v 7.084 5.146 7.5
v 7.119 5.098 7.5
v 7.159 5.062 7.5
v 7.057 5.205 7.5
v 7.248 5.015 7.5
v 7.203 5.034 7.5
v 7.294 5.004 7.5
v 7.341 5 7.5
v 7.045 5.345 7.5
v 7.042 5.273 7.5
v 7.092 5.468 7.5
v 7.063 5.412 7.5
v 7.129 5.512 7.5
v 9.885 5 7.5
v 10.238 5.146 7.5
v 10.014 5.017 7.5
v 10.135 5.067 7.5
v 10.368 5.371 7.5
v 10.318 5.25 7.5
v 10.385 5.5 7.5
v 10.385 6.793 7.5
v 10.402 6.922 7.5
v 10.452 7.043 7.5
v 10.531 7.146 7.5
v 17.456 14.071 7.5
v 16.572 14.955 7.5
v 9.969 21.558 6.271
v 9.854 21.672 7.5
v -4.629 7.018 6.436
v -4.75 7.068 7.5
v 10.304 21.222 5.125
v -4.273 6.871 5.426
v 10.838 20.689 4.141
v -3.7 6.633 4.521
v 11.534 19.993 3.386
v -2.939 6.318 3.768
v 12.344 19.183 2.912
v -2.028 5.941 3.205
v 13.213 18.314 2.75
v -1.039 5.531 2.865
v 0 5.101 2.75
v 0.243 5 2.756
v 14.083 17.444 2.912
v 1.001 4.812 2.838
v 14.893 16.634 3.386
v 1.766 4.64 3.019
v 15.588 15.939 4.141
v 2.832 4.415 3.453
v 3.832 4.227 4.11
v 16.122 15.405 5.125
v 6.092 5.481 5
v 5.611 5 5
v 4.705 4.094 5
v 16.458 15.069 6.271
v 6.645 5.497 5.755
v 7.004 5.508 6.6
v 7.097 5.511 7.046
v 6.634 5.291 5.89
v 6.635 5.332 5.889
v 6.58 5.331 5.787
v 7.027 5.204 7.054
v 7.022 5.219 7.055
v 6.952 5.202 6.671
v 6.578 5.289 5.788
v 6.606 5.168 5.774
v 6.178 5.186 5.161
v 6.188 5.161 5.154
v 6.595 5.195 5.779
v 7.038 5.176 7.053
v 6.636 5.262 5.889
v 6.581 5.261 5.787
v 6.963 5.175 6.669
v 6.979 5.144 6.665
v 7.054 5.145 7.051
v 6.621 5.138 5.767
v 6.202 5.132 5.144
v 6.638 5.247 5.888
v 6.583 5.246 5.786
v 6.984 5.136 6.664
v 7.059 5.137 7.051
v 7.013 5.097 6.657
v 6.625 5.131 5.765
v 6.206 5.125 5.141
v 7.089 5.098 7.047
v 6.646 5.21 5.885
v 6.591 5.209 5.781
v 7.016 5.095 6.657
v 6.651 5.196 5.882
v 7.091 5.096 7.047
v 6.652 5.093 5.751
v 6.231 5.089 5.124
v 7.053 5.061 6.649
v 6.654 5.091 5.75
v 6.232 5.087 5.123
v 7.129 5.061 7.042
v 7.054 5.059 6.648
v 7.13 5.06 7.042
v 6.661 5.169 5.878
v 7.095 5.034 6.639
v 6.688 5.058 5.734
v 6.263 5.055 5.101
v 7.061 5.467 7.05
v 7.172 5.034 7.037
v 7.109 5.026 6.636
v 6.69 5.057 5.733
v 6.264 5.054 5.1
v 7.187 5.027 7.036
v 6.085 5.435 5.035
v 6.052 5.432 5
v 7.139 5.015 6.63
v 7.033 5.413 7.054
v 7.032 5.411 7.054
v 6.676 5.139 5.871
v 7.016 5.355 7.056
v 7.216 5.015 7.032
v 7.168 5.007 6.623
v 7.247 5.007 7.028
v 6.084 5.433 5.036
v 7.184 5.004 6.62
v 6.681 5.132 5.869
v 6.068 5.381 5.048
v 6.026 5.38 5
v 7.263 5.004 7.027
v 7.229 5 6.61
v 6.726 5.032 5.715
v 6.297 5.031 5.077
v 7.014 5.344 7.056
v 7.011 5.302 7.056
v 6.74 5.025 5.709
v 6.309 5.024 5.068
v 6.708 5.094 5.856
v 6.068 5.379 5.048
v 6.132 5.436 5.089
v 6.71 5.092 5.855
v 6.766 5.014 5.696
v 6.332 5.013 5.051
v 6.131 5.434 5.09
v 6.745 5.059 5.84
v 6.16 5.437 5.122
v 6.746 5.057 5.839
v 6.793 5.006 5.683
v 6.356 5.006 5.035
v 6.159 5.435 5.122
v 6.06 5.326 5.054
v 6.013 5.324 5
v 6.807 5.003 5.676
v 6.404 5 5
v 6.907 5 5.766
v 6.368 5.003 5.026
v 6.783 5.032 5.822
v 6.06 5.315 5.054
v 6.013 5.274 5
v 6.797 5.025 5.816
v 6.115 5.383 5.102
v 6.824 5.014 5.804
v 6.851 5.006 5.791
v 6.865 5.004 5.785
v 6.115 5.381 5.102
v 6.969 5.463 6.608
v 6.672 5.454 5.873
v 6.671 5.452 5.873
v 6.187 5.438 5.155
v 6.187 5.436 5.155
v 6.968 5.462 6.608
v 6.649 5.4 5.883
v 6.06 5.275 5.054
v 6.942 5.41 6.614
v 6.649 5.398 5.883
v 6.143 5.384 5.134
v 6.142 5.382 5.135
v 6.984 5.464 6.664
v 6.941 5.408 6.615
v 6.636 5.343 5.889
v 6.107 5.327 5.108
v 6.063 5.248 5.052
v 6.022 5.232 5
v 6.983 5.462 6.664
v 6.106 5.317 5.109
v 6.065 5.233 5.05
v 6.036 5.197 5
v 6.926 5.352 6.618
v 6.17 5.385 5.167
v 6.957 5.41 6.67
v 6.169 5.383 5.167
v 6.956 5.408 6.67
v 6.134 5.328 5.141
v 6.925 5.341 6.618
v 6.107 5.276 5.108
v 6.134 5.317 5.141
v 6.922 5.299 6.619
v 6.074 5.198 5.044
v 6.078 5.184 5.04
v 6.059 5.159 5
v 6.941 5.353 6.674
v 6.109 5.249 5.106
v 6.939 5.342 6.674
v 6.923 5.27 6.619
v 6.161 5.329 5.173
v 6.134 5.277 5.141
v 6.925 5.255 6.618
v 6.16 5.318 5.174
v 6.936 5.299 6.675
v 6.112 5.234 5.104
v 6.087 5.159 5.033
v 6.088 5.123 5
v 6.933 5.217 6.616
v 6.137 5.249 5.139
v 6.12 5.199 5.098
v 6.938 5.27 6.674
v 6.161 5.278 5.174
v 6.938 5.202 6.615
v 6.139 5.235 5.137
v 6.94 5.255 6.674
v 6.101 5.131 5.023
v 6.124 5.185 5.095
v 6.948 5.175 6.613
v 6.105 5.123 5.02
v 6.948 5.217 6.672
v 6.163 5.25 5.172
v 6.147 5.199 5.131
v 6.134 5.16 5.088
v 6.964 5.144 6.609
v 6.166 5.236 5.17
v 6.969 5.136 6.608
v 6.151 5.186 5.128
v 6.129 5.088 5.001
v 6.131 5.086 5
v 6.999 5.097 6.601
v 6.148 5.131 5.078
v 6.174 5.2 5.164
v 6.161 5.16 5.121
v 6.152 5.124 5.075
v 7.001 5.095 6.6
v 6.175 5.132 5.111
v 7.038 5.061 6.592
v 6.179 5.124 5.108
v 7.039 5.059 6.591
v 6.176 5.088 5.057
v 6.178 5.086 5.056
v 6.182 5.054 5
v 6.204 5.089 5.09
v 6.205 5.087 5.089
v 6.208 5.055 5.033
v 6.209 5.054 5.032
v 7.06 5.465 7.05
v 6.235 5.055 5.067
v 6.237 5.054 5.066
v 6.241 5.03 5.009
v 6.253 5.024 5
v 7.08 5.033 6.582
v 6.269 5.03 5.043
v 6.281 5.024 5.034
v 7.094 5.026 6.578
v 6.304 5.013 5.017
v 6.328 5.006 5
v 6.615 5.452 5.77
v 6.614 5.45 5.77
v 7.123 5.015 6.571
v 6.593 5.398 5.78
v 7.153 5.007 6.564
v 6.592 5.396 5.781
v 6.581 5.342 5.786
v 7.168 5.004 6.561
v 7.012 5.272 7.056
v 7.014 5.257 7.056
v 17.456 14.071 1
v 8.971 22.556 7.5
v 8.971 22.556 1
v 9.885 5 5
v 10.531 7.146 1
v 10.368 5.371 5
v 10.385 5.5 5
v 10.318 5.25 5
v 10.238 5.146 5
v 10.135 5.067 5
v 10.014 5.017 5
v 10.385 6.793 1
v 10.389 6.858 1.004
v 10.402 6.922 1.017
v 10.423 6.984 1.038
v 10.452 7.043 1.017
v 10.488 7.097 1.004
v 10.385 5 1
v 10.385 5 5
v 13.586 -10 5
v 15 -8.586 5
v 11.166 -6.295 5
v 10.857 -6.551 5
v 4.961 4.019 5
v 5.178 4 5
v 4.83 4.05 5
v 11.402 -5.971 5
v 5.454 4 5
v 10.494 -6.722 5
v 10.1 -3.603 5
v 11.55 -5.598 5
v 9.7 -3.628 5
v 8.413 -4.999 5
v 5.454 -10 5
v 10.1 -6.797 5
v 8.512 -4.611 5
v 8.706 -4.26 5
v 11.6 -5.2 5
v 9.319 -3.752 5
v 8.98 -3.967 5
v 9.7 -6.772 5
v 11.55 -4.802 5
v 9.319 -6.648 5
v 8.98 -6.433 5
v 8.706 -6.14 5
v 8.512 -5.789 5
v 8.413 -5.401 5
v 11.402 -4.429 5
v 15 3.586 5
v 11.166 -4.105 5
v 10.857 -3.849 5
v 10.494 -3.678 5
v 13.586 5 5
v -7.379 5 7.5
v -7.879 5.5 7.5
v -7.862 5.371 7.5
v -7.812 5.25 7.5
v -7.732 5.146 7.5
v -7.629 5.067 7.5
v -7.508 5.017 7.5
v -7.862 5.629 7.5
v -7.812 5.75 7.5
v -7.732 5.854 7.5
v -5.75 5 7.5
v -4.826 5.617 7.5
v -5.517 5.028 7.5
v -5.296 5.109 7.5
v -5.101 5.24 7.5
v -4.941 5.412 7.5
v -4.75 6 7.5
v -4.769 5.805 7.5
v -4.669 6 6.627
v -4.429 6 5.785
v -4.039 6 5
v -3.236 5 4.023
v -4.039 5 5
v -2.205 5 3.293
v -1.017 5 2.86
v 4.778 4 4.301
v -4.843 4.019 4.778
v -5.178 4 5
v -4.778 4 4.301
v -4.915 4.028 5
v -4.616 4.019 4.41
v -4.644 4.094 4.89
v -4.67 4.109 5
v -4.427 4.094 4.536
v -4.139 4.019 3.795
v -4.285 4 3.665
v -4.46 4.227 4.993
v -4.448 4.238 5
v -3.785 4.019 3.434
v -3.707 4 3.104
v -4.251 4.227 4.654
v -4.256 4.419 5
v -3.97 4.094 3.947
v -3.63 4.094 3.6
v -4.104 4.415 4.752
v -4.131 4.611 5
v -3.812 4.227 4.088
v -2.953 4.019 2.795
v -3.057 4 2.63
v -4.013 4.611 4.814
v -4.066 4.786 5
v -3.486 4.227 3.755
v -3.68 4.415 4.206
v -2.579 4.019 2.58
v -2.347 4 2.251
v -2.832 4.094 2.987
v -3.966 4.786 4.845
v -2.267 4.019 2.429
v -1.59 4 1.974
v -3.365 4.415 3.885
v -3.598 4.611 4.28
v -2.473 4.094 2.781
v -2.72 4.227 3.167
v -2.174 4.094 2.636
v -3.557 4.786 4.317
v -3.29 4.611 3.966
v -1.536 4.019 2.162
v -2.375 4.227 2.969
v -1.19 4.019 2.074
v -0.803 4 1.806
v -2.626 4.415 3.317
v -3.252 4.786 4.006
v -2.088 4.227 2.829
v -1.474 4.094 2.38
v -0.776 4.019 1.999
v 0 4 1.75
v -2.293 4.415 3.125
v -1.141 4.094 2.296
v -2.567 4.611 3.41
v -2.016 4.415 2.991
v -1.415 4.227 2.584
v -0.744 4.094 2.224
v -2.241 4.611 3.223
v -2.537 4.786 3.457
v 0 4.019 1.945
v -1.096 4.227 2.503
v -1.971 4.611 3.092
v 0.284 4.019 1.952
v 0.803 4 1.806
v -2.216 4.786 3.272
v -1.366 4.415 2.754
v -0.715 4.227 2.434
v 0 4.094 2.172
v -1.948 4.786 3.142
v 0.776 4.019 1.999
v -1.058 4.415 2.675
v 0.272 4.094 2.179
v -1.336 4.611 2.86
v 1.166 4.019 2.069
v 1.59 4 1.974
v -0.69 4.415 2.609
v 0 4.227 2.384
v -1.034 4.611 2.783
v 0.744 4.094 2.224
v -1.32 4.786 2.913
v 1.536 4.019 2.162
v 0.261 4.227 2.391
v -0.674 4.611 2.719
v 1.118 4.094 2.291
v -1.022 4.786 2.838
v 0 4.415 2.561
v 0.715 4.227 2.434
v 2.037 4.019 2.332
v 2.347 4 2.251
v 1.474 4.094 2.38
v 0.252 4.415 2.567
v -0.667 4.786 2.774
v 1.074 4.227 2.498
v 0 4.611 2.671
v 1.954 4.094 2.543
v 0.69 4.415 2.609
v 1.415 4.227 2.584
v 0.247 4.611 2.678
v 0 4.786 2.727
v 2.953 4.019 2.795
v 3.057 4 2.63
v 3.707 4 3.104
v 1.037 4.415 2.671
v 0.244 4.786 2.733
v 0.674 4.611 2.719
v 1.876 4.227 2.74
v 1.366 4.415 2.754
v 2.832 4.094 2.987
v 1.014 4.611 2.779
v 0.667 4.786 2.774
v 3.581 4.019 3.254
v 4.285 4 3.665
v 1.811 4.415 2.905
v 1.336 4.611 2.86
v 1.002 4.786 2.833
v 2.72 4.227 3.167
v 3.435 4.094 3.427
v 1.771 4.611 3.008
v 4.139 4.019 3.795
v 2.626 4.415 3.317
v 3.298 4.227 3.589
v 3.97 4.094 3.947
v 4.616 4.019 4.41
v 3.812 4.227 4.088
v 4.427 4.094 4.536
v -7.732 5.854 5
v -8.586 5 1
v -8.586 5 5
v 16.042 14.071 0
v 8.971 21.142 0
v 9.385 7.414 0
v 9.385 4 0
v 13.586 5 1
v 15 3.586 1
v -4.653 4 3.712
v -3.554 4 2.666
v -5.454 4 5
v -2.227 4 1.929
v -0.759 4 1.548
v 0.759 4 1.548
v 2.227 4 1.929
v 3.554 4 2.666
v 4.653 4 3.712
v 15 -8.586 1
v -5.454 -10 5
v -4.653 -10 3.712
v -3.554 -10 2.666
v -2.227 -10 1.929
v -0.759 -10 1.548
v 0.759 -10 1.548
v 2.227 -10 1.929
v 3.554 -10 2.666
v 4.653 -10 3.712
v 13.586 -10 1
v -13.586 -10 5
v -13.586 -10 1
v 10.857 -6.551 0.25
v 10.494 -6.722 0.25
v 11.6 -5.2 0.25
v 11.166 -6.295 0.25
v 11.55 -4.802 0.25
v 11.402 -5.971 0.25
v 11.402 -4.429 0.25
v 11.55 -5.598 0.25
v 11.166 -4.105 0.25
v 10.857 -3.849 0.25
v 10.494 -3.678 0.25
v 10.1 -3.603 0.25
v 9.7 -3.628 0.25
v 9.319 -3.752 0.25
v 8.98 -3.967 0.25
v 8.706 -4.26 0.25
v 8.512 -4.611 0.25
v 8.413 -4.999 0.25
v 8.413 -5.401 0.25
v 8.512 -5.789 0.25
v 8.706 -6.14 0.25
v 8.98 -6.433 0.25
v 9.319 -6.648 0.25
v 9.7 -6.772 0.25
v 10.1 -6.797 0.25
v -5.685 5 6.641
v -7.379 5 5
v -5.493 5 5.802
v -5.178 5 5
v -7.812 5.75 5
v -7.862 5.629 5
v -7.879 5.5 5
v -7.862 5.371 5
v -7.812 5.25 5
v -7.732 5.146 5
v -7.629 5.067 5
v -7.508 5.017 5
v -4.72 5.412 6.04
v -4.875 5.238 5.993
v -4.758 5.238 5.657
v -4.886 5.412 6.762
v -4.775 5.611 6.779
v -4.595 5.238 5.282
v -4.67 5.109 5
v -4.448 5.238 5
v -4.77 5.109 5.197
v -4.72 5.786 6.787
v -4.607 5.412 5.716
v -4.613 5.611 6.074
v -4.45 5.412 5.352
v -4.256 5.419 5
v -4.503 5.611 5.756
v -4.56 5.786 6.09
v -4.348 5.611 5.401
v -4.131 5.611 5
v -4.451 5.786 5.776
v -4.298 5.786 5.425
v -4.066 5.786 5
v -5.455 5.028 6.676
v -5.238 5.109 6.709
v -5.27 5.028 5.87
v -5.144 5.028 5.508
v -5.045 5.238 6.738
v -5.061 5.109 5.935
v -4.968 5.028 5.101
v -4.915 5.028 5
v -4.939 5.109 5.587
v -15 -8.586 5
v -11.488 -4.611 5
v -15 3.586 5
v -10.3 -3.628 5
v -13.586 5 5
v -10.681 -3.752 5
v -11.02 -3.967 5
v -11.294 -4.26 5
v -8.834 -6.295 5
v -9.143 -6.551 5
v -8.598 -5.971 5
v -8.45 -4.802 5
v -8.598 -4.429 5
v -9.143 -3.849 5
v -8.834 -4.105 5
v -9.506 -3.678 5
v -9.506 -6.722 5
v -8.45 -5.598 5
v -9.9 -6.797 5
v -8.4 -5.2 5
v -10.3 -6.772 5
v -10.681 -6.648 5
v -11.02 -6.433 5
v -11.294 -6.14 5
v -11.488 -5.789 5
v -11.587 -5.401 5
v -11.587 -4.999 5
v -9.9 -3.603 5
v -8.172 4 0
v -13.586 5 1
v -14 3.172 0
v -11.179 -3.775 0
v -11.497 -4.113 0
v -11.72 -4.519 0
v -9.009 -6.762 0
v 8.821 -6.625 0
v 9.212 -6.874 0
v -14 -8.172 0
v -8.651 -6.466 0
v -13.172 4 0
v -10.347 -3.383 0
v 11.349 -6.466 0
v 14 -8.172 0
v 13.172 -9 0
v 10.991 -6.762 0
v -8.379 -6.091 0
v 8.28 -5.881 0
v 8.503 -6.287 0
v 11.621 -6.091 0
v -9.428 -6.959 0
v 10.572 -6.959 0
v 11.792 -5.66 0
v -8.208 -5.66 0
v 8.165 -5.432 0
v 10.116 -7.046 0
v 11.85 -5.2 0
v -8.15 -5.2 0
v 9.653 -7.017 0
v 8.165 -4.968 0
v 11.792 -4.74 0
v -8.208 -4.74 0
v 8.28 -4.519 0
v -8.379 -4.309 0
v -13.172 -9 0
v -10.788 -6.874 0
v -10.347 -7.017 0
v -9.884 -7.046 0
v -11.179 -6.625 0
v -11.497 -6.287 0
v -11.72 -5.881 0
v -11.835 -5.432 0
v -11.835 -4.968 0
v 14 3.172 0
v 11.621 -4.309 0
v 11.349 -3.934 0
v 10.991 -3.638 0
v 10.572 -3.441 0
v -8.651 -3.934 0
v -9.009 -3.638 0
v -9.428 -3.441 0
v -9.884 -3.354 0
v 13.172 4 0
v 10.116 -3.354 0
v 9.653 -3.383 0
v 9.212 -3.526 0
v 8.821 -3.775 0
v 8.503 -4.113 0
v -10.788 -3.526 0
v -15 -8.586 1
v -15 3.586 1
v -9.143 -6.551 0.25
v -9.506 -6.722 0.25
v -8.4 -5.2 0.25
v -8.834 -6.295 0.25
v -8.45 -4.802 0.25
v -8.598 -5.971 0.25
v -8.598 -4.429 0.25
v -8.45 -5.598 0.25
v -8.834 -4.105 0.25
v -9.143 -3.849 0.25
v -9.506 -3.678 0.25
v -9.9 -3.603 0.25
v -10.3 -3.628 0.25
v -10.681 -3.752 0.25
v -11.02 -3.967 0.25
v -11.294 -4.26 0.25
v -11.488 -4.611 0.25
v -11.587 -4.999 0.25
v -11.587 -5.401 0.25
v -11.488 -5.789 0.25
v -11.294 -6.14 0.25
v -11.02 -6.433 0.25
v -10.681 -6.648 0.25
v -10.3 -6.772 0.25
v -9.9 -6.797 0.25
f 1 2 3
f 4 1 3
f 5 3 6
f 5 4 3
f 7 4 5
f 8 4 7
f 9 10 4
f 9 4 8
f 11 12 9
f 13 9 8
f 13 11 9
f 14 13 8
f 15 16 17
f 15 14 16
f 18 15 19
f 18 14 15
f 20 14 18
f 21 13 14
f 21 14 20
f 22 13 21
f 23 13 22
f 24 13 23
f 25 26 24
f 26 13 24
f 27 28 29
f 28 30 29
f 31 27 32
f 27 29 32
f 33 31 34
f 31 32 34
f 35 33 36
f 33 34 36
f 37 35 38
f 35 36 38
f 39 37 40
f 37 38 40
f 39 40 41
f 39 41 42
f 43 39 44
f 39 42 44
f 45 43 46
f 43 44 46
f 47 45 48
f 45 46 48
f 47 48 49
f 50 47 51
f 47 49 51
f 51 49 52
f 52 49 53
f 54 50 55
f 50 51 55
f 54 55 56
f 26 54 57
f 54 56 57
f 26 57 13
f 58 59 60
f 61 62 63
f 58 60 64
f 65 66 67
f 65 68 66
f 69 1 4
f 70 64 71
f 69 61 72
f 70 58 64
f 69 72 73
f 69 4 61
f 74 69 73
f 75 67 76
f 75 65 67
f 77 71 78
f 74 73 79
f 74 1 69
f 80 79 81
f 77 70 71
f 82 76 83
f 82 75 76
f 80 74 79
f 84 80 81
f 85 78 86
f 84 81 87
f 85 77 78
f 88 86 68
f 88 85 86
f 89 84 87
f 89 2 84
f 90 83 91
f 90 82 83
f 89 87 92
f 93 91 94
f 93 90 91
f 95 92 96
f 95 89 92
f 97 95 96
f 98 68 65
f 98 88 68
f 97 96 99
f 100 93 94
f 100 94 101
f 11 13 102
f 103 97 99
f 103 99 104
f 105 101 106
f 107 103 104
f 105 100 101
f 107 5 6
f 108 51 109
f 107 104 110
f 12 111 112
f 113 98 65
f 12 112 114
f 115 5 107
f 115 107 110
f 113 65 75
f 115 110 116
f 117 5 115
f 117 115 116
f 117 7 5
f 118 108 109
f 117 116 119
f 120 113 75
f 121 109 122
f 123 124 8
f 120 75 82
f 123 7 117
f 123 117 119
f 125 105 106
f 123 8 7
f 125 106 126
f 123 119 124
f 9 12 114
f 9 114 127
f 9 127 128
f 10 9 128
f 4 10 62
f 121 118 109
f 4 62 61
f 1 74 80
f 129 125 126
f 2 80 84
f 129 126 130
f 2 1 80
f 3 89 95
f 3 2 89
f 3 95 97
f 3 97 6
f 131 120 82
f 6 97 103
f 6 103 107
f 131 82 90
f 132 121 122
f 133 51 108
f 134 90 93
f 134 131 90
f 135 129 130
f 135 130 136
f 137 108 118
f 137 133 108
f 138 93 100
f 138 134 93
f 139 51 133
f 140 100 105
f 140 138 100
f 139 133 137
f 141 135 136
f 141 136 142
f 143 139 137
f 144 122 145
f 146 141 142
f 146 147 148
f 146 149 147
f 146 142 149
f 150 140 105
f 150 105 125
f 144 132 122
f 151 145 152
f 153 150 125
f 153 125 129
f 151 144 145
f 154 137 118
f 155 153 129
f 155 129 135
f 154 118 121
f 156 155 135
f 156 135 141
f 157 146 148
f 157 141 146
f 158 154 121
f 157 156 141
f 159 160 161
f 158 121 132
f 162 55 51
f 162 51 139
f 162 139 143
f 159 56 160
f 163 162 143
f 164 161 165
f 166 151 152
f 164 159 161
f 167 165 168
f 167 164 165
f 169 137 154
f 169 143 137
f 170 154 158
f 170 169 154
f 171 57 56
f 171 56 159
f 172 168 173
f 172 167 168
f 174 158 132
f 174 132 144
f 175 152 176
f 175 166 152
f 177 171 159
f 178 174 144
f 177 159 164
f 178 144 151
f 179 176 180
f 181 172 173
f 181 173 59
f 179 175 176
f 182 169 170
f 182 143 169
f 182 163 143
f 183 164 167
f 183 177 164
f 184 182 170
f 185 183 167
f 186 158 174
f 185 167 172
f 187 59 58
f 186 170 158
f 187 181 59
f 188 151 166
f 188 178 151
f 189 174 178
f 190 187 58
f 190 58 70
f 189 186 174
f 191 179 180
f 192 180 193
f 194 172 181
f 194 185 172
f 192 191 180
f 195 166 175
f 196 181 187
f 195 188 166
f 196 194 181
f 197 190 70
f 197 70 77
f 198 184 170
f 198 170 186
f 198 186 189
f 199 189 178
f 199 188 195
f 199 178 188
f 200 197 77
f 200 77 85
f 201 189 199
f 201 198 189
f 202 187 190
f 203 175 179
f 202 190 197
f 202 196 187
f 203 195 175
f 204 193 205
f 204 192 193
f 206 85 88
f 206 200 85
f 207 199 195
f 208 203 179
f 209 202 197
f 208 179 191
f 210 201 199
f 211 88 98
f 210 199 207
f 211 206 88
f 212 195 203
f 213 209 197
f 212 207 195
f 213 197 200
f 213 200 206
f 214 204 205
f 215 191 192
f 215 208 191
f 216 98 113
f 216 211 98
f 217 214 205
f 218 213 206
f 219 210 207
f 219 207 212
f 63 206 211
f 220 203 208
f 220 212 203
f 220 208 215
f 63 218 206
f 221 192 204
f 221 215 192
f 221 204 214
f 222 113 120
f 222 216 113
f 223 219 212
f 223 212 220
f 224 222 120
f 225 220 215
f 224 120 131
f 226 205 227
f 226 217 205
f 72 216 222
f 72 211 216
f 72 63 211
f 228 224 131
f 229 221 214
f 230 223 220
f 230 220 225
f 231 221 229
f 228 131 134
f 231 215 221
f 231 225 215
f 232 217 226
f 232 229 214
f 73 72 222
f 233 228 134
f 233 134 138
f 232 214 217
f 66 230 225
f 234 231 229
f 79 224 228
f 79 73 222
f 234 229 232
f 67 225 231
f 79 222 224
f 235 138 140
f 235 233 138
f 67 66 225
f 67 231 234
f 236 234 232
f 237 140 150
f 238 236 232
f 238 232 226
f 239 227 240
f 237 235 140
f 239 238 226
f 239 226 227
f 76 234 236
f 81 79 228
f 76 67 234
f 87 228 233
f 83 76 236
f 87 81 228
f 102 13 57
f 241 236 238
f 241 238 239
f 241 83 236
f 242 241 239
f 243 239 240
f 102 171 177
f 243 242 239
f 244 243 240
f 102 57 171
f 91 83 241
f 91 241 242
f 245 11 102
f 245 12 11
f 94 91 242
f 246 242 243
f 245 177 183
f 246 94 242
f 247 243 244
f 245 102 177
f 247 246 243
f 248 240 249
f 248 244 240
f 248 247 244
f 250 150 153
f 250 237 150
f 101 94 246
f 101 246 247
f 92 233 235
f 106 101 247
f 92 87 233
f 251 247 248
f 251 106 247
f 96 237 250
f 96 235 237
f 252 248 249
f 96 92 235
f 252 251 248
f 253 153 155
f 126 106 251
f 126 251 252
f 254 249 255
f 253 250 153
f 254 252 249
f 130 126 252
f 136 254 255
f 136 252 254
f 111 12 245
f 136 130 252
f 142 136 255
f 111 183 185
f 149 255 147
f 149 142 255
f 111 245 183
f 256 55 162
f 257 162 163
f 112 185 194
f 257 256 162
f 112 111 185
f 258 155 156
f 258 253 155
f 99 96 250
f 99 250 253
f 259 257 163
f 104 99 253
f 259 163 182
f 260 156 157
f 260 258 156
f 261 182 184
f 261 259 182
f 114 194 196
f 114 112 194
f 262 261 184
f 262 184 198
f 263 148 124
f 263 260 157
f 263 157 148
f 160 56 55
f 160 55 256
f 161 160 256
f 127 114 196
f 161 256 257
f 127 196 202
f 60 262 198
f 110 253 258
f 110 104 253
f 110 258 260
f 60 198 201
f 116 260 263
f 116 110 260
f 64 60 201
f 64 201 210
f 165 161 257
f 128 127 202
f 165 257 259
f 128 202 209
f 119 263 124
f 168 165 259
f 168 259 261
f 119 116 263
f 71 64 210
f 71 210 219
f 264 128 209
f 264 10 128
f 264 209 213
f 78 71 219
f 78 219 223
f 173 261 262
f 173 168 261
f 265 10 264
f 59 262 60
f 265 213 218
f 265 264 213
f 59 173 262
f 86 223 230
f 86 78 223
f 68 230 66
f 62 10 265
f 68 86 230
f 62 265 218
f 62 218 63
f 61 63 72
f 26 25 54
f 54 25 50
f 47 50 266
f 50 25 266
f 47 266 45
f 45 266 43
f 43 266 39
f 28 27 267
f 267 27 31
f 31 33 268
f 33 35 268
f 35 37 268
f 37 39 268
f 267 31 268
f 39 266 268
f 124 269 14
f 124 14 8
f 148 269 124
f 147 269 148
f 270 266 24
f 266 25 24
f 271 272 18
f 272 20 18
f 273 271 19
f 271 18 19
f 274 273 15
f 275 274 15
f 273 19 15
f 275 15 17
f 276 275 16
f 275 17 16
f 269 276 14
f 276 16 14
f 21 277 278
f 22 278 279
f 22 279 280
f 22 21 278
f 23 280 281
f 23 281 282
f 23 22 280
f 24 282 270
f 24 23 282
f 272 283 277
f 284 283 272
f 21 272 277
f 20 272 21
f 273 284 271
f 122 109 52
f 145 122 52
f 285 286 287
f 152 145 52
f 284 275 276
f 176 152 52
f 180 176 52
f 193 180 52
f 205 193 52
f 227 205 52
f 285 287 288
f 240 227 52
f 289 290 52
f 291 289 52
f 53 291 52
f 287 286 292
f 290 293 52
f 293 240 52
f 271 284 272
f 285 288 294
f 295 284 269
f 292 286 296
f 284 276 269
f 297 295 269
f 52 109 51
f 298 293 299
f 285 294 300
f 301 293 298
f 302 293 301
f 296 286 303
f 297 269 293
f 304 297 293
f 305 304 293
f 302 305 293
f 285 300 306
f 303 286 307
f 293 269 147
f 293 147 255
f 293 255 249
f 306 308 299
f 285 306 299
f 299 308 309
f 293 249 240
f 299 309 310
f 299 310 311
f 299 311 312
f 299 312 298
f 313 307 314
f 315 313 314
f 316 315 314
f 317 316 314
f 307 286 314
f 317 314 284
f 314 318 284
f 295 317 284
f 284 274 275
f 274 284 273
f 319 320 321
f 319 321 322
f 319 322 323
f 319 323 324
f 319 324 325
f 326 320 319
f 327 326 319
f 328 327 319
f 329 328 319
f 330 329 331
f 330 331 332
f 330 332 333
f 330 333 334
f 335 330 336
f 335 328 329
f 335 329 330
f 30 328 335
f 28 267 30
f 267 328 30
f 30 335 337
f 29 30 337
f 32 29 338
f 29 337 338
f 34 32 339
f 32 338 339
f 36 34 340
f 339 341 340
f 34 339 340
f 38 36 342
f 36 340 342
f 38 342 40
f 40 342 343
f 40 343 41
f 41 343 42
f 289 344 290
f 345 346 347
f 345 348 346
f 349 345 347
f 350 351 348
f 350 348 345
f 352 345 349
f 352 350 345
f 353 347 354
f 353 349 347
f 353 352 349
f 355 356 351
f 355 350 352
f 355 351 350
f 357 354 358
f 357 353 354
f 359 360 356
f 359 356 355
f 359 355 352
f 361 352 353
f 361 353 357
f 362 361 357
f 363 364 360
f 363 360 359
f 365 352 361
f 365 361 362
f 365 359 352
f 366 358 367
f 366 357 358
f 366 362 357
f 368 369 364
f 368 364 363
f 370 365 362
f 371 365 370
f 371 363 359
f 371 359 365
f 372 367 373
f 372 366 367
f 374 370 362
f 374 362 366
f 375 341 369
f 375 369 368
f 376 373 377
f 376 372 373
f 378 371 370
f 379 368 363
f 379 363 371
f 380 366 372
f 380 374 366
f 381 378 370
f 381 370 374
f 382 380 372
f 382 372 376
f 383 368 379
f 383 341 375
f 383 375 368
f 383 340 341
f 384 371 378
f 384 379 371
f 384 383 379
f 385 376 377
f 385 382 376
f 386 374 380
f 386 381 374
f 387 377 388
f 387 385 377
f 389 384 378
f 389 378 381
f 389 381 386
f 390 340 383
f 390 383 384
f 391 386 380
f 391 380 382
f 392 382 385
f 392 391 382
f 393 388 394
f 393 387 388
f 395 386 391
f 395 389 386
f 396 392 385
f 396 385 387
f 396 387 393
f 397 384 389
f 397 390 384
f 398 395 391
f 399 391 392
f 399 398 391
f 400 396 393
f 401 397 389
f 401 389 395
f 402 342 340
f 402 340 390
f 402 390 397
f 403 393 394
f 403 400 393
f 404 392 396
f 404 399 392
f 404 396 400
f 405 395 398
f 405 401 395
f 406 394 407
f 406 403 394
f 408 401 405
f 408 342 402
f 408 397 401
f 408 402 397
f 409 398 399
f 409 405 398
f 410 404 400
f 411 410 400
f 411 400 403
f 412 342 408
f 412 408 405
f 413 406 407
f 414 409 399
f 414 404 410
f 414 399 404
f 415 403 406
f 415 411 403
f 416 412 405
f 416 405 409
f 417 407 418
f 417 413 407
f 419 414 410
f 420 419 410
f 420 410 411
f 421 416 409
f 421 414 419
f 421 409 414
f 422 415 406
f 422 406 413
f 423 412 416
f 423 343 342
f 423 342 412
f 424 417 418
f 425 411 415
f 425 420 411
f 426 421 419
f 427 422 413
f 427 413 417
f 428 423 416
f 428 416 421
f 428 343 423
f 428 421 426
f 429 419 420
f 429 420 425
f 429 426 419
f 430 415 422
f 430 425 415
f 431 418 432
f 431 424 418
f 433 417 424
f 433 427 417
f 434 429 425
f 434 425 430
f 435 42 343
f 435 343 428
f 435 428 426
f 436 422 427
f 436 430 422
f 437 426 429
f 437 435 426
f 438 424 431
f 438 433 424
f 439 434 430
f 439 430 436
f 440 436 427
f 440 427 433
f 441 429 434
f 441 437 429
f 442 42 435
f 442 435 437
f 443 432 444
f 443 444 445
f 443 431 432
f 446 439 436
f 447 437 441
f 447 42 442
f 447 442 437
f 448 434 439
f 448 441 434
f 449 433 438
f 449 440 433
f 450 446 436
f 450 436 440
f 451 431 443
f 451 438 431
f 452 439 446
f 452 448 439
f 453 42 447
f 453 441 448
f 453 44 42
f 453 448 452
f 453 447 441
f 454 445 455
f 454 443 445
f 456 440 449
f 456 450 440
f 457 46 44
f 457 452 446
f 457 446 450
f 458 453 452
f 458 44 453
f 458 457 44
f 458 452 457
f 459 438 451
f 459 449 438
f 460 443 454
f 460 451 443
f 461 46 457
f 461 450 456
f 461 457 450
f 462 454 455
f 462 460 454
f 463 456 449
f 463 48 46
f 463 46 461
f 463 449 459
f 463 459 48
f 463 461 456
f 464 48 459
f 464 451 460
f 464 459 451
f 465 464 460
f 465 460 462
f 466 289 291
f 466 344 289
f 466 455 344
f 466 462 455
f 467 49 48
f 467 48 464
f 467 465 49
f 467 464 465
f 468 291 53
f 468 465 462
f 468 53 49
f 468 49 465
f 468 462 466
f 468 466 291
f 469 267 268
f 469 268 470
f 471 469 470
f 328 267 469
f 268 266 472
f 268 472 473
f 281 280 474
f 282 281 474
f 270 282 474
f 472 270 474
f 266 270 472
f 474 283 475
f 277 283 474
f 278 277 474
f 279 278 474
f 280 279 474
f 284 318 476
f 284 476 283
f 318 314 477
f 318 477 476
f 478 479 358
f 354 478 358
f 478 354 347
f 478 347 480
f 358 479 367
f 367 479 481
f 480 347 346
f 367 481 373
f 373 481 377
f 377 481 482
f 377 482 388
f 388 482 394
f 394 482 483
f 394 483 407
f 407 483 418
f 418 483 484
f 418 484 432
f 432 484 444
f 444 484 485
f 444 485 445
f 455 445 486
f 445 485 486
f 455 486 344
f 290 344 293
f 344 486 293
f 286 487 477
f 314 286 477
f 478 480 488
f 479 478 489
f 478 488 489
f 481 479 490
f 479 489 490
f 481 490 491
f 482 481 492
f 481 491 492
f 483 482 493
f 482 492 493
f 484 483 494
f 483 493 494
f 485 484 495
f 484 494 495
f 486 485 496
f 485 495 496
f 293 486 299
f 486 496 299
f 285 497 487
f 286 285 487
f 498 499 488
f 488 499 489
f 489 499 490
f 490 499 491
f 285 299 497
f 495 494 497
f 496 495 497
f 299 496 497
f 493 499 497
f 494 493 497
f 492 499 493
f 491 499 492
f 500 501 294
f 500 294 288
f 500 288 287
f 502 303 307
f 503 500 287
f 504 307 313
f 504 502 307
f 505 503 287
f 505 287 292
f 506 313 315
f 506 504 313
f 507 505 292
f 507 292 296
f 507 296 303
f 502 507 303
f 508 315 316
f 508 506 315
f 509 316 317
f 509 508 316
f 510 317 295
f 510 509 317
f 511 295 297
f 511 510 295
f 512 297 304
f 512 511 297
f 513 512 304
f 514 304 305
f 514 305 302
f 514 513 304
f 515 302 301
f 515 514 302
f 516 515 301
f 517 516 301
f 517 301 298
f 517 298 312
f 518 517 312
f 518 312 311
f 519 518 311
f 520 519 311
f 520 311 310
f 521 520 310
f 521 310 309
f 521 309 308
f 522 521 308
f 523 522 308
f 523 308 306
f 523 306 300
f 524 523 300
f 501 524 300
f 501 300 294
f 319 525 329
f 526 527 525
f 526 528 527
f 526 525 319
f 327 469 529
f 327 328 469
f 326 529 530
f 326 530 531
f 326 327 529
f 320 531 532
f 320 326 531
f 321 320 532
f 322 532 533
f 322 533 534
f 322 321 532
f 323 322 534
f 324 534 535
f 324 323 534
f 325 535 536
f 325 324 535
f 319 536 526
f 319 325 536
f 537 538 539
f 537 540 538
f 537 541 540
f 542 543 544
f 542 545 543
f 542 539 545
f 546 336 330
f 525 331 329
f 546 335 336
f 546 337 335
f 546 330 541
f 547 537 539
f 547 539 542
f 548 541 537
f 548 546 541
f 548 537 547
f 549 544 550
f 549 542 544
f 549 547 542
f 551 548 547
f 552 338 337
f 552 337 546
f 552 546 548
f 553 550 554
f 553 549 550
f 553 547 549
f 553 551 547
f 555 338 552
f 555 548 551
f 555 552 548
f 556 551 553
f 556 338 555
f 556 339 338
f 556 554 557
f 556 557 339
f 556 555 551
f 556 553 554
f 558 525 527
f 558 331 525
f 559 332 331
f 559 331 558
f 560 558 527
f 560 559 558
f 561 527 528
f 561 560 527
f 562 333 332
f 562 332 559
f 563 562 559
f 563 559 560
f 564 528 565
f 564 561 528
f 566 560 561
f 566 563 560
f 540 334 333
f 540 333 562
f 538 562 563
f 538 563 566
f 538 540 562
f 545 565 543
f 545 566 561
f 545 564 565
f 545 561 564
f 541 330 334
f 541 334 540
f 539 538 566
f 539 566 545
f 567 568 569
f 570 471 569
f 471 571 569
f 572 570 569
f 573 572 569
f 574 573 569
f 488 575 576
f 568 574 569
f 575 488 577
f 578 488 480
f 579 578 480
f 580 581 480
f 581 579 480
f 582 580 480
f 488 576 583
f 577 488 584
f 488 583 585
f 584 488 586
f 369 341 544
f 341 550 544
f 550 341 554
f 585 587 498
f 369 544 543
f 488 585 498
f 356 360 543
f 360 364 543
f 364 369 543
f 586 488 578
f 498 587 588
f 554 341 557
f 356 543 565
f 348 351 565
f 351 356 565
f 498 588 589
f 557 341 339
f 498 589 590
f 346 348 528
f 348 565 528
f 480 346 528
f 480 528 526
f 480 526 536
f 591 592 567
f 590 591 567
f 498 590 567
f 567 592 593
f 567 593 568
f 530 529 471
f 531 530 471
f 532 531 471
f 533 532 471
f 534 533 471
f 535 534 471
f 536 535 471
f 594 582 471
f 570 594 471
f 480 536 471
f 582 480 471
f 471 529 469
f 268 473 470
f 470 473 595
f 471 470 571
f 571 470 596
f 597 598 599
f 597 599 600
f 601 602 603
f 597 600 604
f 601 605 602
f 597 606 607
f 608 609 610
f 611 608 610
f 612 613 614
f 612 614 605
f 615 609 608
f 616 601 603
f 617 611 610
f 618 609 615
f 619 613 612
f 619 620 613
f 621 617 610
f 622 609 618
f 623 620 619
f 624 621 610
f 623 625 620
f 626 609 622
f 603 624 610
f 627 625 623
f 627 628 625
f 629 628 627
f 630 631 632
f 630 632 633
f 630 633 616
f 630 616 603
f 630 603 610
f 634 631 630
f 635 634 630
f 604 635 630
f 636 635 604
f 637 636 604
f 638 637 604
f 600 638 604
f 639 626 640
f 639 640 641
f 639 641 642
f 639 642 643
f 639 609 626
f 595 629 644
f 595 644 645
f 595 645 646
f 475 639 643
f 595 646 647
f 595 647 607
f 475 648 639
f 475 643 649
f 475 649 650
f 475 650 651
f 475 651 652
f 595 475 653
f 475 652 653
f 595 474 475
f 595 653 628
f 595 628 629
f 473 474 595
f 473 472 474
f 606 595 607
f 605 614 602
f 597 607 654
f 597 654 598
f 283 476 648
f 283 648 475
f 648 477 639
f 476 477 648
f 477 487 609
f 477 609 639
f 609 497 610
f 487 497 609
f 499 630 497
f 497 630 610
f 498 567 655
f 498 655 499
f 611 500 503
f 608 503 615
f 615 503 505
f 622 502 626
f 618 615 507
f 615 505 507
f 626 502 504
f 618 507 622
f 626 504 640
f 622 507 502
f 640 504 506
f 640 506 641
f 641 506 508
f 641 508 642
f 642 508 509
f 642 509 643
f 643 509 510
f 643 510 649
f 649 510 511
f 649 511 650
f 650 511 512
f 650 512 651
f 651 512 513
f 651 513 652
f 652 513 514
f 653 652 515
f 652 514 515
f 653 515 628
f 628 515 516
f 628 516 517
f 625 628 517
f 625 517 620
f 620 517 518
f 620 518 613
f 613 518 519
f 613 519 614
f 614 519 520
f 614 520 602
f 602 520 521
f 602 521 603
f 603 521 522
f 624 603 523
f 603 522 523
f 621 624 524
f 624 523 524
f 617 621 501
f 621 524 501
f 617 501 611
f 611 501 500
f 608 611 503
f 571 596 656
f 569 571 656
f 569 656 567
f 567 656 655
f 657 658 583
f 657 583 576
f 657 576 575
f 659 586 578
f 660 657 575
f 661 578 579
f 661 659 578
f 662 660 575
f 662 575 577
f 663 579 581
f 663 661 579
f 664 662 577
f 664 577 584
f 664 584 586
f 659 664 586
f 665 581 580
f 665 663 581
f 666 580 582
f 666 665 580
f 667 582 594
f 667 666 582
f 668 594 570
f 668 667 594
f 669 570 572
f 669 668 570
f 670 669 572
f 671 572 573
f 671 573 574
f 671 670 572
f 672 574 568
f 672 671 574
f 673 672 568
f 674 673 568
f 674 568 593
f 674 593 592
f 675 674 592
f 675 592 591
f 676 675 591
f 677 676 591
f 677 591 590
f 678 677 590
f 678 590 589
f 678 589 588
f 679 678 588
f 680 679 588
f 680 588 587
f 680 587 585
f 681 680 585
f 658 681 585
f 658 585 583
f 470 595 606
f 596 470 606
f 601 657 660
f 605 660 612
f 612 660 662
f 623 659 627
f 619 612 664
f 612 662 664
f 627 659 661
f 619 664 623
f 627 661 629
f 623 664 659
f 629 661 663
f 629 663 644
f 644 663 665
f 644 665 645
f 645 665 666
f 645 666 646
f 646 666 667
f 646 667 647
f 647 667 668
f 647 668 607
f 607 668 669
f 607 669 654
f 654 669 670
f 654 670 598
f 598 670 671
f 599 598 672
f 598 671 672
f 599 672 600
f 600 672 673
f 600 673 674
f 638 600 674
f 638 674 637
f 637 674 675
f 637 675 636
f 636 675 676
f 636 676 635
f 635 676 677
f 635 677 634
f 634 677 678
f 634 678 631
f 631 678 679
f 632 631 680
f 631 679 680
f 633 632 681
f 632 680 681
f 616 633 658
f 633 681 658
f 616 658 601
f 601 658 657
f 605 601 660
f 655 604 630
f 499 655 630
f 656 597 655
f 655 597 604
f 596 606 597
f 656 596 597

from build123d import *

# Parameters (mm, degrees)
SKETCH002_R     = 4.75
SKETCH_R        = 1.6
PAD_DEPTH       = 5
PAD001_DEPTH    = 2.5
SKETCH004_R     = 6
POCKET_DEPTH    = 14
FILLET_R        = 1
FILLET001_R     = 1
CHAMFER_SIZE    = 1
CHAMFER001_SIZE = 0.25
FILLET002_R     = 0.5
FILLET003_R     = 0.3


with BuildPart() as sweep_body:
    # Sweep: sweep along a path in Sketch003
    with BuildLine(Plane.XY.offset(7.5)) as sweep_path:
        Line((14.142136, 19.242641), (0, 5.100505))
        Line((0, 5.100505), (0, -5.899495))
    # Sketch002 → Sweep (sweep)
    with BuildSketch(Plane(origin=(15.763456, 15.763456, 0), x_dir=(-0.707107, 0.707107, 0), z_dir=(0.707107, 0.707107, 0))):
        with Locations((3.606602, 7.5)):
            Circle(SKETCH002_R)
    sweep(path=sweep_path.line, transition=Transition.RIGHT)


with BuildPart() as fillet003:
    # Sketch → Pad (new body)
    with BuildSketch(Plane.XY):
        Polygon((-15, 3.585786), (-15, -8.585786), (-13.585786, -10), (13.585786, -10), (15, -8.585786), (15, 3.585786), (13.585786, 5), (10.384776, 5), (10.384776, 7), (17.455844, 14.071068), (8.970563, 22.556349), (-8.585786, 5), (-13.585786, 5), align=None)
        with Locations((-10, -5.2)):
            Circle(SKETCH_R, mode=Mode.SUBTRACT)
        with Locations((10, -5.2)):
            Circle(SKETCH_R, mode=Mode.SUBTRACT)
    extrude(amount=PAD_DEPTH)

    # Sketch001 → Pad001 (new body)
    with BuildSketch(Plane.XY.offset(5)):
        Polygon((-8.585786, 5), (8.970563, 22.556349), (17.455844, 14.071068), (10.384776, 7), (10.384776, 5), align=None)
    extrude(amount=PAD001_DEPTH)

    # Cut: cut Sweep body
    add(sweep_body.part, mode=Mode.SUBTRACT)

    # Sketch004 → Pocket (cut)
    with BuildSketch(Plane.XZ.offset(10)):
        with Locations((0, 7.5)):
            Circle(SKETCH004_R)
    extrude(amount=-POCKET_DEPTH, mode=Mode.SUBTRACT)

    # Fillet
    fillet_edges = [fillet003.edges().sort_by_distance(p)[0] for p in [
        (-0.997031, 4, 2.855818),
    ]]
    fillet(fillet_edges, radius=FILLET_R)

    # Fillet001
    fillet001_edges = [fillet003.edges().sort_by_distance(p)[0] for p in [
        (-4.568761, 5, 6.200413),
    ]]
    fillet(fillet001_edges, radius=FILLET001_R)

    # Chamfer
    chamfer_edges = [fillet003.edges().sort_by_distance(p)[0] for p in [
        (0, -10, 0),
        (14.292893, -9.292893, 0),
        (15, -2.5, 0),
        (11.985281, 5, 0),
        (14.292893, 4.292893, 0),
        (10.384776, 6, 0),
        (13.92031, 10.535534, 0),
        (13.213203, 18.313708, 0),
        (0.192388, 13.778175, 0),
        (-11.085786, 5, 0),
        (-14.292893, 4.292893, 0),
        (-15, -2.5, 0),
        (-14.292893, -9.292893, 0),
    ]]
    chamfer(chamfer_edges, length=CHAMFER_SIZE)

    # Chamfer001
    chamfer001_edges = [fillet003.edges().sort_by_distance(p)[0] for p in [
        (-11.6, -5.2, 0),
        (8.4, -5.2, 0),
    ]]
    chamfer(chamfer001_edges, length=CHAMFER001_SIZE)

    # Fillet002
    fillet002_edges = [fillet003.edges().sort_by_distance(p)[0] for p in [
        (10.384776, 5, 6.25),
        (10.384776, 7, 4.25),
        (-8.585786, 5, 6.25),
    ]]
    fillet(fillet002_edges, radius=FILLET002_R)

    # Fillet003
    fillet003_edges = [fillet003.edges().sort_by_distance(p)[0] for p in [
        (6.343838, 5, 6.159209),
    ]]
    fillet(fillet003_edges, radius=FILLET003_R)


solid = fillet003.part
